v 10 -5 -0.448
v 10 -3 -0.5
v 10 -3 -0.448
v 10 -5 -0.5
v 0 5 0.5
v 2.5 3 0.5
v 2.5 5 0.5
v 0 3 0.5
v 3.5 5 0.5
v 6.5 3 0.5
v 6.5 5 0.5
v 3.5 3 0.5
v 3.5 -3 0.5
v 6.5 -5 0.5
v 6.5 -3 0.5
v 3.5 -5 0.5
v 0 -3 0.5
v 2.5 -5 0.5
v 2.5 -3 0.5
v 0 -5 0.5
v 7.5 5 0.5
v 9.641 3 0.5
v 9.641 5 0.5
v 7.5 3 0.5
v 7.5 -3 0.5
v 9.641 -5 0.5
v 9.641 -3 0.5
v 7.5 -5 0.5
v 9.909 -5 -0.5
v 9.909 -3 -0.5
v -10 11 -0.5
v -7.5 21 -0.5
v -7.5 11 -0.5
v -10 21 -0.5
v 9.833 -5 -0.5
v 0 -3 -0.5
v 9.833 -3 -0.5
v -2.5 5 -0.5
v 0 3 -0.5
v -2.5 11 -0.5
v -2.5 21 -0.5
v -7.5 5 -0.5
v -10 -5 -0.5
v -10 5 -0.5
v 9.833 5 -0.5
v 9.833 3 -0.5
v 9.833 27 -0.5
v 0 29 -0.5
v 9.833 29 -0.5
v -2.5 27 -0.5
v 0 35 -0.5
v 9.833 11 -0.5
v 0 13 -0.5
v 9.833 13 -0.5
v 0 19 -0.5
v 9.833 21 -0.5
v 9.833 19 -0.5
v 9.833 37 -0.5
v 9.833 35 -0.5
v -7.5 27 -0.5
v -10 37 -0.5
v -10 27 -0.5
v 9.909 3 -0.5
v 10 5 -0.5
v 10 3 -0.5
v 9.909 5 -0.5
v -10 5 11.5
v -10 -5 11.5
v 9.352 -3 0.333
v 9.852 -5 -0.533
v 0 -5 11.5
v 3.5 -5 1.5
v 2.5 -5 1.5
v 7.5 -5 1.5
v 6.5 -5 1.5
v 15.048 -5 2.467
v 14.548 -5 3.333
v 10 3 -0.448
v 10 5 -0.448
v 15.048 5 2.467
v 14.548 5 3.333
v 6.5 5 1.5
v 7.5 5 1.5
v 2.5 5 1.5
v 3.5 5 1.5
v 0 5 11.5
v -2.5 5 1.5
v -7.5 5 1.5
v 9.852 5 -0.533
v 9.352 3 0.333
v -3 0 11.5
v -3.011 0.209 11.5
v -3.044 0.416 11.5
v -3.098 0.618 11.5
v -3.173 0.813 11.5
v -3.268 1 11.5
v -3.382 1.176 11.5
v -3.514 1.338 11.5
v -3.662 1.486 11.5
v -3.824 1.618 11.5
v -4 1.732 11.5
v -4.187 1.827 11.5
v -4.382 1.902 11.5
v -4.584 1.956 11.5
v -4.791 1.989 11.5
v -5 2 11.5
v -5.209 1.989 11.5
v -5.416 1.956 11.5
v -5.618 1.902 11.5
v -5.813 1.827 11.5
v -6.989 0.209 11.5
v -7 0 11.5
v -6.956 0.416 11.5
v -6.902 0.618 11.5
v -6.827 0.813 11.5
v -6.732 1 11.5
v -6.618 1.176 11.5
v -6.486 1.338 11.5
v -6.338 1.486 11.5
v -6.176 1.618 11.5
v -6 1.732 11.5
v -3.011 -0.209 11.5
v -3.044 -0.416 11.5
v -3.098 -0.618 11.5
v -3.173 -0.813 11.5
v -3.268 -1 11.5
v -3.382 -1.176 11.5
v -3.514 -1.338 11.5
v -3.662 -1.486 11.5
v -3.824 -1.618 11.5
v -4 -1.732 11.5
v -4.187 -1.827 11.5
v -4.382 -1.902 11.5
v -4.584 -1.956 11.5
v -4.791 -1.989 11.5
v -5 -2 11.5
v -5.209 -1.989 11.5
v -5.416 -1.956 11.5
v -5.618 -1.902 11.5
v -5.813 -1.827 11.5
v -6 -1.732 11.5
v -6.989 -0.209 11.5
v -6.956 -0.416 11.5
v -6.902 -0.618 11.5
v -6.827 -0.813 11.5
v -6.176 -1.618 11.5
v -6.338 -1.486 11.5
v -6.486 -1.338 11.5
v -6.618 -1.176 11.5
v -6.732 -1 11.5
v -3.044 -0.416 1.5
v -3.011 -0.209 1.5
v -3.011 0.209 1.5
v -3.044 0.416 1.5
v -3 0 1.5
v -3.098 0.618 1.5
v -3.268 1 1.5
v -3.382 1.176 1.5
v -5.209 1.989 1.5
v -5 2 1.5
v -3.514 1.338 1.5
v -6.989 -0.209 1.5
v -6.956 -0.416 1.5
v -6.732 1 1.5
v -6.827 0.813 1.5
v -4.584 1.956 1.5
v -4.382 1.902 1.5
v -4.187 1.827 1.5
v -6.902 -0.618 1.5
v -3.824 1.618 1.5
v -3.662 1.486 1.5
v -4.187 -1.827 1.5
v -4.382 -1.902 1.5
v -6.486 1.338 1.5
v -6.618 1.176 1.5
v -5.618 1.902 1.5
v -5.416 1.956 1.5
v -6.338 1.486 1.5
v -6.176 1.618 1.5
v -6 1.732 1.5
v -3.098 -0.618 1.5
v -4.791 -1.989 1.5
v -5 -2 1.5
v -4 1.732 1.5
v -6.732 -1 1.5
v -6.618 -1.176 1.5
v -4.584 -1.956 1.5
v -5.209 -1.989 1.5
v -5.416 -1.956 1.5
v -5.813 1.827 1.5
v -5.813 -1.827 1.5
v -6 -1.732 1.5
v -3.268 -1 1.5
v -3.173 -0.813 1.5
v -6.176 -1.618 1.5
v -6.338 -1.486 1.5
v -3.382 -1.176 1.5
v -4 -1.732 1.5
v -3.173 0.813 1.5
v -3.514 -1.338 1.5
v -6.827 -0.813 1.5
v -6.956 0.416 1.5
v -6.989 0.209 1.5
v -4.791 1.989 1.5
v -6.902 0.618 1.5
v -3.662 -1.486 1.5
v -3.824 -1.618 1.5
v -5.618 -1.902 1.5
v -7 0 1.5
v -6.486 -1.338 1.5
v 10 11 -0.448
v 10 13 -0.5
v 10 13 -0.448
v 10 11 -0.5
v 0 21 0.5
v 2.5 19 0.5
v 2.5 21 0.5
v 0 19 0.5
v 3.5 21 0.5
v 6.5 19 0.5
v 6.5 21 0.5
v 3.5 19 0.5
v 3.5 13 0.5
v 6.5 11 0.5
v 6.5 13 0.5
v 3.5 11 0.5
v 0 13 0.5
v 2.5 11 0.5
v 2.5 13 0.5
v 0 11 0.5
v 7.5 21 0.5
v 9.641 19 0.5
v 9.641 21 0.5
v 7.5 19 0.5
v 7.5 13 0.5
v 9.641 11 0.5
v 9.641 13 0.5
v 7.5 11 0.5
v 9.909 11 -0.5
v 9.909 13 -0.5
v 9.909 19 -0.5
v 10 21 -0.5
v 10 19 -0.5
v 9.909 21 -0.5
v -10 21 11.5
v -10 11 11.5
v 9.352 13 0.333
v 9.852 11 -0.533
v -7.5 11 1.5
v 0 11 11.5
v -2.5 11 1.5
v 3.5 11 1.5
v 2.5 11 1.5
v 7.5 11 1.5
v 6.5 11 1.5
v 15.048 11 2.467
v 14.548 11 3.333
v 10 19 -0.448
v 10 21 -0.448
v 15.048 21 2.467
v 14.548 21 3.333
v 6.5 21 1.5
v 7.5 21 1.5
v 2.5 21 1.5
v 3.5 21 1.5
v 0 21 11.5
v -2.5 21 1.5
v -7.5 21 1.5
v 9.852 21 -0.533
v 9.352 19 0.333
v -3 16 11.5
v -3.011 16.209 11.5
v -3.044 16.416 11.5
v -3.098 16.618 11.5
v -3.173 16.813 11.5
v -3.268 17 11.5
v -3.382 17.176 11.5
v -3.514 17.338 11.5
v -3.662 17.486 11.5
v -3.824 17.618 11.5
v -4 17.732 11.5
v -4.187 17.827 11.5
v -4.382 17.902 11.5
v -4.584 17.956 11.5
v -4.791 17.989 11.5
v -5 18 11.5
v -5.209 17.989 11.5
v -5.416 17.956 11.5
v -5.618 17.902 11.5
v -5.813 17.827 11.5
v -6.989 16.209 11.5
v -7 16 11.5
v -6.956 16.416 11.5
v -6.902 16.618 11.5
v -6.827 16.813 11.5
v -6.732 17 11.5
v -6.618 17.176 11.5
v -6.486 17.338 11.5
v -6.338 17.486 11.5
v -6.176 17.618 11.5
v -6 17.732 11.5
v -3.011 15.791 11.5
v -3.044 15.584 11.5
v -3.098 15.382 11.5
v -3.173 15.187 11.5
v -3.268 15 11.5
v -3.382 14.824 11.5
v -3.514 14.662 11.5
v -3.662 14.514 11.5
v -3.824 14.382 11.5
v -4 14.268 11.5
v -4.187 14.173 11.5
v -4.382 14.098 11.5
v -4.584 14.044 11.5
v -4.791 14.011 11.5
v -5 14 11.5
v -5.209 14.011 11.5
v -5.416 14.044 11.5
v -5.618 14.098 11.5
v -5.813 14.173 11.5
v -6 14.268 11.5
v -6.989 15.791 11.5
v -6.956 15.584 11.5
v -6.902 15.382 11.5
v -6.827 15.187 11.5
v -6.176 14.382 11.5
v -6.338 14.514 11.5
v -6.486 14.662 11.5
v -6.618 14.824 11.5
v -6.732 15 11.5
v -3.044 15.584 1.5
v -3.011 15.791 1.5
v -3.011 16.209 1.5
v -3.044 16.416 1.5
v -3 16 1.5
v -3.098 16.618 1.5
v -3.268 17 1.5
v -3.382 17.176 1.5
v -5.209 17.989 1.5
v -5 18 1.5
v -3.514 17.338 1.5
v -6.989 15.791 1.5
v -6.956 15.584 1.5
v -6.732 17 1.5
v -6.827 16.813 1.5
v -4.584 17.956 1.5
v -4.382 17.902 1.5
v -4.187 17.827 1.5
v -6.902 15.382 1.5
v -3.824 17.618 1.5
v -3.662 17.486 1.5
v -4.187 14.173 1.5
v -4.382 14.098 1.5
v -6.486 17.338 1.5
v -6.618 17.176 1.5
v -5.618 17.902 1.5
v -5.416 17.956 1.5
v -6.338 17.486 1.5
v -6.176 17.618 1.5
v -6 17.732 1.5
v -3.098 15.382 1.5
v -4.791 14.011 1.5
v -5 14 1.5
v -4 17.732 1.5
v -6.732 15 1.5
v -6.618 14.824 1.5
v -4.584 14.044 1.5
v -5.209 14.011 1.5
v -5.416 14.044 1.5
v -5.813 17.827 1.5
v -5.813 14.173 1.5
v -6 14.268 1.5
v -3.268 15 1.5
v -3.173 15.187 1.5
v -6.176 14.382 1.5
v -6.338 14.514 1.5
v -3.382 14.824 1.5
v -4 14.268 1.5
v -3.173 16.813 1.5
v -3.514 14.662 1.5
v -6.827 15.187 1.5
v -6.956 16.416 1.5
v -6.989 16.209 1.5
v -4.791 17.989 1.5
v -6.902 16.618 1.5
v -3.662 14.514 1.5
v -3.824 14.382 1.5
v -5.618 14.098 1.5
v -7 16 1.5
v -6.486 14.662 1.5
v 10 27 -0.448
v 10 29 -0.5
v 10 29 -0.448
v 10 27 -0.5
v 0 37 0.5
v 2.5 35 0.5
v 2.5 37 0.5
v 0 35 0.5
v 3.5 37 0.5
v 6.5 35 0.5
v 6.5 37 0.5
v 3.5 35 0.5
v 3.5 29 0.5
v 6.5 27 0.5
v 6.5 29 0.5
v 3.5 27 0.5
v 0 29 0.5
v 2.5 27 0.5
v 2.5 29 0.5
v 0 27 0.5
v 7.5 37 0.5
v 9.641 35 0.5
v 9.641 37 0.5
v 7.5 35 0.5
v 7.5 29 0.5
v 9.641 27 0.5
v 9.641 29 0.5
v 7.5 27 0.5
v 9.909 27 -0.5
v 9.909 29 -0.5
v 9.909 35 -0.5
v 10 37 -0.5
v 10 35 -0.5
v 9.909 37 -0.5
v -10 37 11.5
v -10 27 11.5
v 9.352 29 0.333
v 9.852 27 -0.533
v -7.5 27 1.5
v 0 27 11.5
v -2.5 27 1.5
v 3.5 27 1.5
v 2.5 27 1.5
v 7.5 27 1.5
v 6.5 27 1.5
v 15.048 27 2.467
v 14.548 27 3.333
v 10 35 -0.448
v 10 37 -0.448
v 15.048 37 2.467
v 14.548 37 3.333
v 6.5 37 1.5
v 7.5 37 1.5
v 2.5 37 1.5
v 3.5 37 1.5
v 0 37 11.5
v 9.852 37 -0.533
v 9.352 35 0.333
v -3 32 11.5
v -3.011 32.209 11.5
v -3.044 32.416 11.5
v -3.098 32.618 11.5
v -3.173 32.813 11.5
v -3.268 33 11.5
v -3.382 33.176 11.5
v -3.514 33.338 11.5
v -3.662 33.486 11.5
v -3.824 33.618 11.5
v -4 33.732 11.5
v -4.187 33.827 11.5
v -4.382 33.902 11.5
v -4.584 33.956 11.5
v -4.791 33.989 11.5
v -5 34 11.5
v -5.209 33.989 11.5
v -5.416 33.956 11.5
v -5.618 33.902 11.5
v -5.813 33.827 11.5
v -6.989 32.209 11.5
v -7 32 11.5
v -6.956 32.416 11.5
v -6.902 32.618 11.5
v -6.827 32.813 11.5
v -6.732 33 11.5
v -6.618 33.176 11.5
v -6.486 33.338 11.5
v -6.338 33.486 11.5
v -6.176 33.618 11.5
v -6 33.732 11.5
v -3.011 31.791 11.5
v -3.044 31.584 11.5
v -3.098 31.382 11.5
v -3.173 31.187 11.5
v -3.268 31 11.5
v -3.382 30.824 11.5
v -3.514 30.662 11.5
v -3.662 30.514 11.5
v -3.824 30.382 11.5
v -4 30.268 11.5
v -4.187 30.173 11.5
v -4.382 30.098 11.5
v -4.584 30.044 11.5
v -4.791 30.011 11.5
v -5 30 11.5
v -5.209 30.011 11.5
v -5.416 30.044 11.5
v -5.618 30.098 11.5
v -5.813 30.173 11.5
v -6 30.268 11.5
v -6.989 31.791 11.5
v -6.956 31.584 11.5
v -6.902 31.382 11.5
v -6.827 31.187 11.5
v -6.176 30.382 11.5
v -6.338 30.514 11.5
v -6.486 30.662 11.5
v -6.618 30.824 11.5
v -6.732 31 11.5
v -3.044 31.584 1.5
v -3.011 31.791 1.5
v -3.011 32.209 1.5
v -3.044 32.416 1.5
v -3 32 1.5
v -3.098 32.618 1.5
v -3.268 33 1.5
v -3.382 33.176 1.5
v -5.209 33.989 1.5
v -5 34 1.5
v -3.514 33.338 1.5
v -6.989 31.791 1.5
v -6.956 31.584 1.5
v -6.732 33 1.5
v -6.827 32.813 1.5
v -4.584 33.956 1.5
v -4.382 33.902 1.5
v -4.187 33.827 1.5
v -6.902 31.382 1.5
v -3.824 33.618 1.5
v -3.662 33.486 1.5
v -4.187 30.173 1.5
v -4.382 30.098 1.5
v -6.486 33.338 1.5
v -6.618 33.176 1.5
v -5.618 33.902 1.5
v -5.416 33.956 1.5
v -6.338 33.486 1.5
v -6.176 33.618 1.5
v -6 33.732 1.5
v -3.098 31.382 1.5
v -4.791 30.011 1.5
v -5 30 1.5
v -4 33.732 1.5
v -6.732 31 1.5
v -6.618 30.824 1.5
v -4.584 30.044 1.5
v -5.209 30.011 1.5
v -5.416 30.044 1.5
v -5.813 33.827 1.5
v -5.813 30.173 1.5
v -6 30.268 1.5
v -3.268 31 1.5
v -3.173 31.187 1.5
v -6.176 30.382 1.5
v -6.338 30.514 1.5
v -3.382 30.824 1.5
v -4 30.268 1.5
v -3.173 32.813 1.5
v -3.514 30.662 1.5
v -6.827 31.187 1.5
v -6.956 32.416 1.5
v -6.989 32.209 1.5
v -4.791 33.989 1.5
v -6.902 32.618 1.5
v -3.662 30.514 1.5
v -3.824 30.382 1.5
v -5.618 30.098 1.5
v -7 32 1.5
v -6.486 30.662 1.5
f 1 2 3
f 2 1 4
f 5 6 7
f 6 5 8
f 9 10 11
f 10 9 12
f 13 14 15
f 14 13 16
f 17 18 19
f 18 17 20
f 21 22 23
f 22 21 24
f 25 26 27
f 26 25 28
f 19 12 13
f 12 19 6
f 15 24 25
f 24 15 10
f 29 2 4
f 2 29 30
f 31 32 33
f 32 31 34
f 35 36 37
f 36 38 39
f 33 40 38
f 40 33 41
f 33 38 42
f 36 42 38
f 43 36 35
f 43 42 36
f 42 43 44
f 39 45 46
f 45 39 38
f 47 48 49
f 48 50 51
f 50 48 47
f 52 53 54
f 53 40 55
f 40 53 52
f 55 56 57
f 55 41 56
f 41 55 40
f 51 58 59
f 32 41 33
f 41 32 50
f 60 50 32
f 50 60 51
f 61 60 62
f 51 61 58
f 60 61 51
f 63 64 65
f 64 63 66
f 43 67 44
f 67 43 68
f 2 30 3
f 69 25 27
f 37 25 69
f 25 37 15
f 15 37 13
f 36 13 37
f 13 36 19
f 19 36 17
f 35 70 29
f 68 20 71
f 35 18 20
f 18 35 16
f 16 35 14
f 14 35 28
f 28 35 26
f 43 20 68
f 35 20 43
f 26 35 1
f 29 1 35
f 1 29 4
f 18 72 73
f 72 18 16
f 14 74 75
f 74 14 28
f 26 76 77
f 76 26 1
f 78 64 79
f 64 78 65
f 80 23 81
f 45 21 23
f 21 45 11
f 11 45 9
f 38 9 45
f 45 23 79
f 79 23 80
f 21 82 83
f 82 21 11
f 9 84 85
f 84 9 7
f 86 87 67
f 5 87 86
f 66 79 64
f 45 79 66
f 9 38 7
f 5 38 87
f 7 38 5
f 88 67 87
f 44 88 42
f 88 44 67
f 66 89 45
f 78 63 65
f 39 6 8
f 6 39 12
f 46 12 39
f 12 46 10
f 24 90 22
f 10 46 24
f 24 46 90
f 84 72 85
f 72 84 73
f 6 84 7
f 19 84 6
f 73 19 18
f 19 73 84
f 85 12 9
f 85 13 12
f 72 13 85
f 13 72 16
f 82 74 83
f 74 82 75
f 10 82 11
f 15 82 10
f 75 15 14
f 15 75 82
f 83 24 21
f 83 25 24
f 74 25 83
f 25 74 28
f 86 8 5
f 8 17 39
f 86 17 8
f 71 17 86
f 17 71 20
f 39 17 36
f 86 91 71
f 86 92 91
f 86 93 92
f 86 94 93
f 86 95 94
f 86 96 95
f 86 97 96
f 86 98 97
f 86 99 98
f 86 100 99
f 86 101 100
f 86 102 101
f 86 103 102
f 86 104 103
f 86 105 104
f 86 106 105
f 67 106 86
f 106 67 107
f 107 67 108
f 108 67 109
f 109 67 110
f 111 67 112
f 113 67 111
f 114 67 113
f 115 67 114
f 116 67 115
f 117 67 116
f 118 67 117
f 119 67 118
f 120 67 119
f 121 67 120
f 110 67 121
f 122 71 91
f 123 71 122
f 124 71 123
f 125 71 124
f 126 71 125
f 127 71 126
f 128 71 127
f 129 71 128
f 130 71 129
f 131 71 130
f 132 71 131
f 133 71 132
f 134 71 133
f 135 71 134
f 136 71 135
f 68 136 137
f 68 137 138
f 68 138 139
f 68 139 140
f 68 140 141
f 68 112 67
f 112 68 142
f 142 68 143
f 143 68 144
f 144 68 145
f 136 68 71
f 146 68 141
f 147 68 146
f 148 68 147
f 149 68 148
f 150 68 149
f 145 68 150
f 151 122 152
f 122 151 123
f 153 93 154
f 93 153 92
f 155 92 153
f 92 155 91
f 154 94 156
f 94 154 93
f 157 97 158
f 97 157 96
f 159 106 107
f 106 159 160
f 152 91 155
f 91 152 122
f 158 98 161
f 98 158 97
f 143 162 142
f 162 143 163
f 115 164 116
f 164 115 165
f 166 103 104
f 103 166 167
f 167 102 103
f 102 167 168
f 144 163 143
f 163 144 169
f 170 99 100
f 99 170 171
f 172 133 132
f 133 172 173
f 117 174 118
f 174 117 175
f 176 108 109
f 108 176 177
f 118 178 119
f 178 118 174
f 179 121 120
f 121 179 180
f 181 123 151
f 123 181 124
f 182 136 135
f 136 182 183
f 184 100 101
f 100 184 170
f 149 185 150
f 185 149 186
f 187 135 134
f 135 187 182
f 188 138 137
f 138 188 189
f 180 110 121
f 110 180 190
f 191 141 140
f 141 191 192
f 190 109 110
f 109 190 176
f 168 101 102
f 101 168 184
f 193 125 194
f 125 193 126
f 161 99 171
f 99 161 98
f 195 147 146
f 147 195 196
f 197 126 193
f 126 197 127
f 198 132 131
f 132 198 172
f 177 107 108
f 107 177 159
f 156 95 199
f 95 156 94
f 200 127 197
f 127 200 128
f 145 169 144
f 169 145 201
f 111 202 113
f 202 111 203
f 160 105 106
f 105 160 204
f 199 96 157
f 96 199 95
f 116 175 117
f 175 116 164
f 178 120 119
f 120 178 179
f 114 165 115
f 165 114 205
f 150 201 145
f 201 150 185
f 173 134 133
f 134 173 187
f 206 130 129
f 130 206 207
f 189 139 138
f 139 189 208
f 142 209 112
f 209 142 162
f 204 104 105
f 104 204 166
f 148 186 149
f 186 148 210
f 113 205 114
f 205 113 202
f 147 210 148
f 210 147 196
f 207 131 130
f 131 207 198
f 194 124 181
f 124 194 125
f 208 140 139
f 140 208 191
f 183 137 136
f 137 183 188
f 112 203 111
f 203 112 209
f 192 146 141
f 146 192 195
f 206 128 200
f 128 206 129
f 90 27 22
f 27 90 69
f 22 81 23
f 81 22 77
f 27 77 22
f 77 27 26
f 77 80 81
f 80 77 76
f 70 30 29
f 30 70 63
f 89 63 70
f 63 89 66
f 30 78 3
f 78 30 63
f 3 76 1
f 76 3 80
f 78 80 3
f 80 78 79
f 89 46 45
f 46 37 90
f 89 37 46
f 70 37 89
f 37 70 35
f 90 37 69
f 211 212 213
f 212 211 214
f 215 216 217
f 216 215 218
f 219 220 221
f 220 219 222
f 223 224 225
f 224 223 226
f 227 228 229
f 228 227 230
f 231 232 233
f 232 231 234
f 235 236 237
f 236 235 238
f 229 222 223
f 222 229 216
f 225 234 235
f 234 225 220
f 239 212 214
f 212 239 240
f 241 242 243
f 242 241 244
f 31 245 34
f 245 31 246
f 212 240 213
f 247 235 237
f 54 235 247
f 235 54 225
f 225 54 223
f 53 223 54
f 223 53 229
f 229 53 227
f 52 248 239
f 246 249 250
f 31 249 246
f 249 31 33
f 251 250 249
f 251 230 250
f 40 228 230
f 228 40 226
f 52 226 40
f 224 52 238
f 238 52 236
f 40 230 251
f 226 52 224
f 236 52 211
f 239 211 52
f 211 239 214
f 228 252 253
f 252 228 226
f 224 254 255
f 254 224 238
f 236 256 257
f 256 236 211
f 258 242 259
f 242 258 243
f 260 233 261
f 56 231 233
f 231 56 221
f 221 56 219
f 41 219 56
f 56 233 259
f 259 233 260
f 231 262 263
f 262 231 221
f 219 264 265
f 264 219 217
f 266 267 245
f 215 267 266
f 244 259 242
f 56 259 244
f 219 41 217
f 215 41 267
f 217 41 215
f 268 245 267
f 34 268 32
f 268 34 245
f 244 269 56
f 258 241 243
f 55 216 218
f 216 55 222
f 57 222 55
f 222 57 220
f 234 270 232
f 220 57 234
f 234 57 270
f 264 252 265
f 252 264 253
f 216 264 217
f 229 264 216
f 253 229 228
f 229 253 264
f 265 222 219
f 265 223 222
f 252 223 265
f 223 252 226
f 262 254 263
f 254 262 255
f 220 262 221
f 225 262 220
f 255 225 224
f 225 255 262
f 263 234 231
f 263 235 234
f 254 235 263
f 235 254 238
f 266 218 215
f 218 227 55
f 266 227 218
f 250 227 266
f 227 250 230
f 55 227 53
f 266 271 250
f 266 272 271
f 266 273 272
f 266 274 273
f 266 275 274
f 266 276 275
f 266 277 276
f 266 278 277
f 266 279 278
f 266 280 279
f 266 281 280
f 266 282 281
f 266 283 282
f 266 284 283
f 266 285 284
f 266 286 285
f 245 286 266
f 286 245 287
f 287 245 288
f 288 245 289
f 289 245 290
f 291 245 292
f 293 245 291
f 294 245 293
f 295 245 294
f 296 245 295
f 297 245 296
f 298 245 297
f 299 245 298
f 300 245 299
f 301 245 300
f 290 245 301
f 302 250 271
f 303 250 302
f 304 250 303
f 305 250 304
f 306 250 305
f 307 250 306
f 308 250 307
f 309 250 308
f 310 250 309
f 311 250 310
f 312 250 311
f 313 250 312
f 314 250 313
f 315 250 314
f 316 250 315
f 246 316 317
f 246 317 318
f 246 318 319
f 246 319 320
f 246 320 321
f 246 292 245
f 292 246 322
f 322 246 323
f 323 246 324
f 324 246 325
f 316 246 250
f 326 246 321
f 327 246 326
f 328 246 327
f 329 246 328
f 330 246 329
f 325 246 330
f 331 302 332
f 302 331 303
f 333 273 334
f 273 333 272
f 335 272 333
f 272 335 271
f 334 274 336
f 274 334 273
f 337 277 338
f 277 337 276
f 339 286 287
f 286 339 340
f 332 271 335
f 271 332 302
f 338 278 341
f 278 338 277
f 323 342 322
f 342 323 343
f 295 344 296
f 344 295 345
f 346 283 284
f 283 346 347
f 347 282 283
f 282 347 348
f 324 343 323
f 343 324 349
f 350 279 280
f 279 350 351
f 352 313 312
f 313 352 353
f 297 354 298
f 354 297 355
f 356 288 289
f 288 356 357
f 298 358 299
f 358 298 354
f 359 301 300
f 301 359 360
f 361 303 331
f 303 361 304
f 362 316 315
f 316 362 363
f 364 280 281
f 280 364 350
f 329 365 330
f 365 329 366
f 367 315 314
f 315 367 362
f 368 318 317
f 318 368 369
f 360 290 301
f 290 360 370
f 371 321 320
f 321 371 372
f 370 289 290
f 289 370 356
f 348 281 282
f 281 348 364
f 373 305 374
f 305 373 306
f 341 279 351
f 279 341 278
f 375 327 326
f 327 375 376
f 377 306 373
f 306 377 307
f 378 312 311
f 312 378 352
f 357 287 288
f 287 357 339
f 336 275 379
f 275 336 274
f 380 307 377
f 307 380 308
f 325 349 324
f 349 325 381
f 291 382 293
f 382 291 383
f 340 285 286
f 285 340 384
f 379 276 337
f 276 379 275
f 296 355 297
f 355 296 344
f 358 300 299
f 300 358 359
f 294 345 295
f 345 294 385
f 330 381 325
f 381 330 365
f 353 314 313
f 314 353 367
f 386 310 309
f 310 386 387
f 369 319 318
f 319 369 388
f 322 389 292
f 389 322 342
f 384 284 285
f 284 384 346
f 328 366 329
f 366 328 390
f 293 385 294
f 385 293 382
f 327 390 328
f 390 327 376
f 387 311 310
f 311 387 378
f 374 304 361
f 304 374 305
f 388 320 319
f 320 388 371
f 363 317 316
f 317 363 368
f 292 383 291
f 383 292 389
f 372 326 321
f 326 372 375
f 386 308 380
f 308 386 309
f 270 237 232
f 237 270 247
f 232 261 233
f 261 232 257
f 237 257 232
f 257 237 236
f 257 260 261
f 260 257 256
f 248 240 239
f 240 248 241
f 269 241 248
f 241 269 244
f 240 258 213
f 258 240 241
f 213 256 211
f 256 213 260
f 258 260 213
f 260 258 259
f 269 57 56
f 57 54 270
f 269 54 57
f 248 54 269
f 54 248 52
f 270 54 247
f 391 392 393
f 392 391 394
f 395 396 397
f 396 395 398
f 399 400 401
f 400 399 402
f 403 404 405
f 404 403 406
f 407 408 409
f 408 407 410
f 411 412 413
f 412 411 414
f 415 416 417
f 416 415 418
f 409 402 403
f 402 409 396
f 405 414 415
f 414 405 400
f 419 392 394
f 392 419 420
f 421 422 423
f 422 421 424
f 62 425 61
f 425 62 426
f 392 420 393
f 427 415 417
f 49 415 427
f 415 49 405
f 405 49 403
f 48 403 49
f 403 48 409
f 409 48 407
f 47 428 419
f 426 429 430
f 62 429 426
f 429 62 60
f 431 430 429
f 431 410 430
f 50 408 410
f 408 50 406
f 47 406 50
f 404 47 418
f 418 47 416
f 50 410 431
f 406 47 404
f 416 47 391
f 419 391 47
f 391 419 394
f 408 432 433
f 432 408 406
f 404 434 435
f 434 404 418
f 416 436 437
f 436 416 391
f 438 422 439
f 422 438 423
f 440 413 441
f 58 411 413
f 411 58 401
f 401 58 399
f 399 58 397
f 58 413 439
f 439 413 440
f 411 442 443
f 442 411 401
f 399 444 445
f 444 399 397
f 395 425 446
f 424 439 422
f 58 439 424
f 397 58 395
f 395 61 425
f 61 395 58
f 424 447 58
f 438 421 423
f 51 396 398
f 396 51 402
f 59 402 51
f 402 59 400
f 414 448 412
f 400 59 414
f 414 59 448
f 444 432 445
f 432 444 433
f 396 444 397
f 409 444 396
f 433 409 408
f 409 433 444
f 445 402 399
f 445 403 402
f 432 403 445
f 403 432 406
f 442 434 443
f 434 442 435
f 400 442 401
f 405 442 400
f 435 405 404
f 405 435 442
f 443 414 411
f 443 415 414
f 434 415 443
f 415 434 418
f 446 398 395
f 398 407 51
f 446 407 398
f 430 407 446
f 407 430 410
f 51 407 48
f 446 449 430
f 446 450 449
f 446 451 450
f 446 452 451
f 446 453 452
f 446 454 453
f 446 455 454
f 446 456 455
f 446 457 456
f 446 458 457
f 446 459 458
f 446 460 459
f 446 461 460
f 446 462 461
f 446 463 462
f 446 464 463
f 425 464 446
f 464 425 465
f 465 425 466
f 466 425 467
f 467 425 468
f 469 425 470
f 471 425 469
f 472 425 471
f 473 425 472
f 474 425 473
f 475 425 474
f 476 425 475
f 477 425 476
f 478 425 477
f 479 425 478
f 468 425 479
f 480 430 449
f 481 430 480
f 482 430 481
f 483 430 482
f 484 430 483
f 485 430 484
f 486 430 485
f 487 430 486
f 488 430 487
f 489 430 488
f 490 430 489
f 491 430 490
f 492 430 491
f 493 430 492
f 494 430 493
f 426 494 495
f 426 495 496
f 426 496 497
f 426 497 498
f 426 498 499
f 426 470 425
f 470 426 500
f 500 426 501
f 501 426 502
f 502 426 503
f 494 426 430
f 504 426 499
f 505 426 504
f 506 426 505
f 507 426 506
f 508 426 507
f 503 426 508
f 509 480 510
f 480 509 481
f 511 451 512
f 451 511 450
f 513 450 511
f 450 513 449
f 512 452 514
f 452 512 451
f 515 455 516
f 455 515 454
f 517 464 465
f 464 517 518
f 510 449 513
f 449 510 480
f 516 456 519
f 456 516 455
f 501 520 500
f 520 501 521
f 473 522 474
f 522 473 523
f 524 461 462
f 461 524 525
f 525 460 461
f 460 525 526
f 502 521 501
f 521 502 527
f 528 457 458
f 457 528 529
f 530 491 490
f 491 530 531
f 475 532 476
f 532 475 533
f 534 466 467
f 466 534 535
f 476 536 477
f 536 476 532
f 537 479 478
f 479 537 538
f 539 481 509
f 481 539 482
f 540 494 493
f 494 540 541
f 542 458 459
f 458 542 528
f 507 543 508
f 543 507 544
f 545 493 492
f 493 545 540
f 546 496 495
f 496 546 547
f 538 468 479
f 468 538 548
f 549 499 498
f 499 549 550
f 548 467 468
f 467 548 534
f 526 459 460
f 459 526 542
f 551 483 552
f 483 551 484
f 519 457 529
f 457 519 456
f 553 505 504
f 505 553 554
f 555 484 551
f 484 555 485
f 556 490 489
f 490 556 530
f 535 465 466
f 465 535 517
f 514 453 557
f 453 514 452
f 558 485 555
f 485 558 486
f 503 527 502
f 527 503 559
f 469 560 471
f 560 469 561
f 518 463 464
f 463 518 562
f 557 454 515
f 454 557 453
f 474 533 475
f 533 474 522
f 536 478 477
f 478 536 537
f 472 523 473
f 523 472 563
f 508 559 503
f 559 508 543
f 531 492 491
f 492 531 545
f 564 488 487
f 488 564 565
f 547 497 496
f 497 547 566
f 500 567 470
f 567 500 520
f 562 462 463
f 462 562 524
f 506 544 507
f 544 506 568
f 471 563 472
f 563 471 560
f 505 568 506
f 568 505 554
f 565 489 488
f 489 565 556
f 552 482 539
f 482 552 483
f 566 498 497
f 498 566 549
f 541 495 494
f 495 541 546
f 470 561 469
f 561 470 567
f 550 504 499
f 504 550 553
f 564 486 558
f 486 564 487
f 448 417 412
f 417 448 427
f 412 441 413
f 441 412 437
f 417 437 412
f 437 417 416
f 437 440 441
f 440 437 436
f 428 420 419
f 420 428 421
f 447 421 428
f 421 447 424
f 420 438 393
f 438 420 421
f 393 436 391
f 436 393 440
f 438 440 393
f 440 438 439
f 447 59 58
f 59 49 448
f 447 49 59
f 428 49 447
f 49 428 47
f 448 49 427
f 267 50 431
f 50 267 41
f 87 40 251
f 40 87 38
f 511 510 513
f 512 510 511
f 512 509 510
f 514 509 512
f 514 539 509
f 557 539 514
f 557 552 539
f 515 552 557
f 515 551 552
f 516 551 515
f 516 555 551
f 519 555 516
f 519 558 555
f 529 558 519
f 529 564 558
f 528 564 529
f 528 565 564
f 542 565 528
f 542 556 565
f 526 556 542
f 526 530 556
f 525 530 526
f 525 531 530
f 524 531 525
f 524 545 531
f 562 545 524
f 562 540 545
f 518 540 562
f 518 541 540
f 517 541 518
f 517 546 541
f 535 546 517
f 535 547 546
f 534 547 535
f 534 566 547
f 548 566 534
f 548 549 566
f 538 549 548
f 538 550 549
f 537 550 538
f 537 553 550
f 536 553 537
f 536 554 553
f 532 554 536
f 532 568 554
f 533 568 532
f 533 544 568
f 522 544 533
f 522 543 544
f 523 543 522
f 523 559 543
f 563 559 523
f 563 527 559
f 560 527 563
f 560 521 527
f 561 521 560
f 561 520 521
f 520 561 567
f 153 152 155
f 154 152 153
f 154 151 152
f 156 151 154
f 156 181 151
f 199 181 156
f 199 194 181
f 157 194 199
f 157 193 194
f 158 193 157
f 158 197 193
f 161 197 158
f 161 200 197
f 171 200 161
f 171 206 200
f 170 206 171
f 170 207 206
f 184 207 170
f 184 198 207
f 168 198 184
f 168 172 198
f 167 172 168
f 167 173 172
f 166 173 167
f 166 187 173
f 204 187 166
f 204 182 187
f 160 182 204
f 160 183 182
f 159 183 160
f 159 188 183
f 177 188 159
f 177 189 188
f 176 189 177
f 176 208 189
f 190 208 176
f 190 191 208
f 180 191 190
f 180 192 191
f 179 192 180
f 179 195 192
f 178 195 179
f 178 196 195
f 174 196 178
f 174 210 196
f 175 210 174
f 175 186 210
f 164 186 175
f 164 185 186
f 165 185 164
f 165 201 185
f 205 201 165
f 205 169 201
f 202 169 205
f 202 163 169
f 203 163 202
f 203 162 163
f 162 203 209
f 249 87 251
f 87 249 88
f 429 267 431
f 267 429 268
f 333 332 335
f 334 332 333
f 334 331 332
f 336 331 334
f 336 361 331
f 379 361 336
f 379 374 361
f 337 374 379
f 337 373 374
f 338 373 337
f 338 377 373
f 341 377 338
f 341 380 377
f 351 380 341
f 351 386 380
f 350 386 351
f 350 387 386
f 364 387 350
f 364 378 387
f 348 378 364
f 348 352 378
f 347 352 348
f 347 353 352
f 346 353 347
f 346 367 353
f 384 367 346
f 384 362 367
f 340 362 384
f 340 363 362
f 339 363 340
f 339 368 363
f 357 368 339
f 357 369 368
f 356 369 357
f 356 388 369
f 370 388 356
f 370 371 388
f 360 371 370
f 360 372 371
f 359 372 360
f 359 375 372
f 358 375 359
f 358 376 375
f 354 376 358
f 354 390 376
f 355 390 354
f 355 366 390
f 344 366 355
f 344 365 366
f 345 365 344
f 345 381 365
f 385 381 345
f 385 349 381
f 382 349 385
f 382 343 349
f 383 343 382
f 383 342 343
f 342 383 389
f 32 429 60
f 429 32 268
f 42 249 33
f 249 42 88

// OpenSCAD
// file: ruler.scad
module ruler(length)
{
    mark_width = 0.125;
    mark_depth = 0.05;

    difference()
    {
        color([1, 0, 0])
        cube( [1, length, 8 ] );
        for ( i = [1:length-1] )
        {
            translate( [mark_depth, i, 0] ) cube( [1, mark_width, 3 ] );
            translate( [-mark_depth, i, 0] ) cube( [1, mark_width, 3 ] );
            if (i % 5 == 0)
            {
                translate( [mark_depth, i, 0] ) cube( [5, mark_width, 5 ] );
                translate( [-mark_depth, i, 0] ) cube( [5, mark_width, 5 ] );
            }
            if (i % 10 == 0)
            {
                translate( [mark_depth, i, 0] ) cube( [10, mark_width, 7 ] );
                translate( [-mark_depth, i, 0] ) cube( [10, mark_width, 7 ] );
            }
        }
    }
}

//rotate([0,0,90]) ruler(200);
//translate([0, 0, 0]) cube([4, 21, 2]);
// main file
include <ruler.scad>

$fn=60;
width = 10;

//
// Used as a trailing shoe for the airplane
//

module trailing_shoe_airplane() {
    airplane_shoe();
}

module rulers() {
    translate([20.0, 54, 0]) rotate([0, 90, 90]) ruler(30);
    translate([-19, 3, 0]) rotate([0, 90, 0]) ruler(50);
}

module base() {
    base_length = 20;
    base_width = 2;
    base_thickness = 1;
    translate ([0, -4, 0]) cube([base_length, base_width, base_thickness], true);
    translate ([0, 4, 0]) cube([base_length, base_width, base_thickness], true);

    translate ([3, 0, 1]) rotate([0, 0, 90]) cube([10, 1, 1], true);
    translate ([7, 0, 1]) rotate([0, 0, 90]) cube([10, 1, 1], true);
}

module tip() {
    tip_length = 6;
    tip_width = width;
    tip_thickness = 1;
    cube([tip_length, tip_width, tip_thickness], true);
}

module pin_holder() {
    pin_length = width;
    pin_width = width;
    pin_hight = 12;

    length_of_hole = pin_hight;
    size_of_hole = 2.0;

	difference() {
        translate([0, 0, 1.5]) cube([pin_length, pin_width, pin_hight], true);
        translate([0, 0, 1.5]) cylinder(h=length_of_hole, r=size_of_hole, center=true);
    }
}

module shoe_air() {
    base();

    translate([-5, 0, 4]) pin_holder();

    color([1, 0, 0])
    translate([12.2, 0, 1.4]) rotate([0, -30, 0]) tip();
}

module beam(len) {
    length = 5;
    color([.5, .6, 1])

    // back
    translate([-7.5, -2, -0.5]) cube([length, len, 2]);

    // front
    //translate([7, -2, -1]) cube([length, len, 2]);
}


// *****************************************************
// main
// *****************************************************
number_of_items = 3;
offset = 16;

module airplane_shoe() {
    for (i = [0:number_of_items-1]) {
        translate([0, offset*i, 0]) shoe_air();
    }

    beam((number_of_items-1)*offset+4);
}

airplane_shoe();
//rulers();
